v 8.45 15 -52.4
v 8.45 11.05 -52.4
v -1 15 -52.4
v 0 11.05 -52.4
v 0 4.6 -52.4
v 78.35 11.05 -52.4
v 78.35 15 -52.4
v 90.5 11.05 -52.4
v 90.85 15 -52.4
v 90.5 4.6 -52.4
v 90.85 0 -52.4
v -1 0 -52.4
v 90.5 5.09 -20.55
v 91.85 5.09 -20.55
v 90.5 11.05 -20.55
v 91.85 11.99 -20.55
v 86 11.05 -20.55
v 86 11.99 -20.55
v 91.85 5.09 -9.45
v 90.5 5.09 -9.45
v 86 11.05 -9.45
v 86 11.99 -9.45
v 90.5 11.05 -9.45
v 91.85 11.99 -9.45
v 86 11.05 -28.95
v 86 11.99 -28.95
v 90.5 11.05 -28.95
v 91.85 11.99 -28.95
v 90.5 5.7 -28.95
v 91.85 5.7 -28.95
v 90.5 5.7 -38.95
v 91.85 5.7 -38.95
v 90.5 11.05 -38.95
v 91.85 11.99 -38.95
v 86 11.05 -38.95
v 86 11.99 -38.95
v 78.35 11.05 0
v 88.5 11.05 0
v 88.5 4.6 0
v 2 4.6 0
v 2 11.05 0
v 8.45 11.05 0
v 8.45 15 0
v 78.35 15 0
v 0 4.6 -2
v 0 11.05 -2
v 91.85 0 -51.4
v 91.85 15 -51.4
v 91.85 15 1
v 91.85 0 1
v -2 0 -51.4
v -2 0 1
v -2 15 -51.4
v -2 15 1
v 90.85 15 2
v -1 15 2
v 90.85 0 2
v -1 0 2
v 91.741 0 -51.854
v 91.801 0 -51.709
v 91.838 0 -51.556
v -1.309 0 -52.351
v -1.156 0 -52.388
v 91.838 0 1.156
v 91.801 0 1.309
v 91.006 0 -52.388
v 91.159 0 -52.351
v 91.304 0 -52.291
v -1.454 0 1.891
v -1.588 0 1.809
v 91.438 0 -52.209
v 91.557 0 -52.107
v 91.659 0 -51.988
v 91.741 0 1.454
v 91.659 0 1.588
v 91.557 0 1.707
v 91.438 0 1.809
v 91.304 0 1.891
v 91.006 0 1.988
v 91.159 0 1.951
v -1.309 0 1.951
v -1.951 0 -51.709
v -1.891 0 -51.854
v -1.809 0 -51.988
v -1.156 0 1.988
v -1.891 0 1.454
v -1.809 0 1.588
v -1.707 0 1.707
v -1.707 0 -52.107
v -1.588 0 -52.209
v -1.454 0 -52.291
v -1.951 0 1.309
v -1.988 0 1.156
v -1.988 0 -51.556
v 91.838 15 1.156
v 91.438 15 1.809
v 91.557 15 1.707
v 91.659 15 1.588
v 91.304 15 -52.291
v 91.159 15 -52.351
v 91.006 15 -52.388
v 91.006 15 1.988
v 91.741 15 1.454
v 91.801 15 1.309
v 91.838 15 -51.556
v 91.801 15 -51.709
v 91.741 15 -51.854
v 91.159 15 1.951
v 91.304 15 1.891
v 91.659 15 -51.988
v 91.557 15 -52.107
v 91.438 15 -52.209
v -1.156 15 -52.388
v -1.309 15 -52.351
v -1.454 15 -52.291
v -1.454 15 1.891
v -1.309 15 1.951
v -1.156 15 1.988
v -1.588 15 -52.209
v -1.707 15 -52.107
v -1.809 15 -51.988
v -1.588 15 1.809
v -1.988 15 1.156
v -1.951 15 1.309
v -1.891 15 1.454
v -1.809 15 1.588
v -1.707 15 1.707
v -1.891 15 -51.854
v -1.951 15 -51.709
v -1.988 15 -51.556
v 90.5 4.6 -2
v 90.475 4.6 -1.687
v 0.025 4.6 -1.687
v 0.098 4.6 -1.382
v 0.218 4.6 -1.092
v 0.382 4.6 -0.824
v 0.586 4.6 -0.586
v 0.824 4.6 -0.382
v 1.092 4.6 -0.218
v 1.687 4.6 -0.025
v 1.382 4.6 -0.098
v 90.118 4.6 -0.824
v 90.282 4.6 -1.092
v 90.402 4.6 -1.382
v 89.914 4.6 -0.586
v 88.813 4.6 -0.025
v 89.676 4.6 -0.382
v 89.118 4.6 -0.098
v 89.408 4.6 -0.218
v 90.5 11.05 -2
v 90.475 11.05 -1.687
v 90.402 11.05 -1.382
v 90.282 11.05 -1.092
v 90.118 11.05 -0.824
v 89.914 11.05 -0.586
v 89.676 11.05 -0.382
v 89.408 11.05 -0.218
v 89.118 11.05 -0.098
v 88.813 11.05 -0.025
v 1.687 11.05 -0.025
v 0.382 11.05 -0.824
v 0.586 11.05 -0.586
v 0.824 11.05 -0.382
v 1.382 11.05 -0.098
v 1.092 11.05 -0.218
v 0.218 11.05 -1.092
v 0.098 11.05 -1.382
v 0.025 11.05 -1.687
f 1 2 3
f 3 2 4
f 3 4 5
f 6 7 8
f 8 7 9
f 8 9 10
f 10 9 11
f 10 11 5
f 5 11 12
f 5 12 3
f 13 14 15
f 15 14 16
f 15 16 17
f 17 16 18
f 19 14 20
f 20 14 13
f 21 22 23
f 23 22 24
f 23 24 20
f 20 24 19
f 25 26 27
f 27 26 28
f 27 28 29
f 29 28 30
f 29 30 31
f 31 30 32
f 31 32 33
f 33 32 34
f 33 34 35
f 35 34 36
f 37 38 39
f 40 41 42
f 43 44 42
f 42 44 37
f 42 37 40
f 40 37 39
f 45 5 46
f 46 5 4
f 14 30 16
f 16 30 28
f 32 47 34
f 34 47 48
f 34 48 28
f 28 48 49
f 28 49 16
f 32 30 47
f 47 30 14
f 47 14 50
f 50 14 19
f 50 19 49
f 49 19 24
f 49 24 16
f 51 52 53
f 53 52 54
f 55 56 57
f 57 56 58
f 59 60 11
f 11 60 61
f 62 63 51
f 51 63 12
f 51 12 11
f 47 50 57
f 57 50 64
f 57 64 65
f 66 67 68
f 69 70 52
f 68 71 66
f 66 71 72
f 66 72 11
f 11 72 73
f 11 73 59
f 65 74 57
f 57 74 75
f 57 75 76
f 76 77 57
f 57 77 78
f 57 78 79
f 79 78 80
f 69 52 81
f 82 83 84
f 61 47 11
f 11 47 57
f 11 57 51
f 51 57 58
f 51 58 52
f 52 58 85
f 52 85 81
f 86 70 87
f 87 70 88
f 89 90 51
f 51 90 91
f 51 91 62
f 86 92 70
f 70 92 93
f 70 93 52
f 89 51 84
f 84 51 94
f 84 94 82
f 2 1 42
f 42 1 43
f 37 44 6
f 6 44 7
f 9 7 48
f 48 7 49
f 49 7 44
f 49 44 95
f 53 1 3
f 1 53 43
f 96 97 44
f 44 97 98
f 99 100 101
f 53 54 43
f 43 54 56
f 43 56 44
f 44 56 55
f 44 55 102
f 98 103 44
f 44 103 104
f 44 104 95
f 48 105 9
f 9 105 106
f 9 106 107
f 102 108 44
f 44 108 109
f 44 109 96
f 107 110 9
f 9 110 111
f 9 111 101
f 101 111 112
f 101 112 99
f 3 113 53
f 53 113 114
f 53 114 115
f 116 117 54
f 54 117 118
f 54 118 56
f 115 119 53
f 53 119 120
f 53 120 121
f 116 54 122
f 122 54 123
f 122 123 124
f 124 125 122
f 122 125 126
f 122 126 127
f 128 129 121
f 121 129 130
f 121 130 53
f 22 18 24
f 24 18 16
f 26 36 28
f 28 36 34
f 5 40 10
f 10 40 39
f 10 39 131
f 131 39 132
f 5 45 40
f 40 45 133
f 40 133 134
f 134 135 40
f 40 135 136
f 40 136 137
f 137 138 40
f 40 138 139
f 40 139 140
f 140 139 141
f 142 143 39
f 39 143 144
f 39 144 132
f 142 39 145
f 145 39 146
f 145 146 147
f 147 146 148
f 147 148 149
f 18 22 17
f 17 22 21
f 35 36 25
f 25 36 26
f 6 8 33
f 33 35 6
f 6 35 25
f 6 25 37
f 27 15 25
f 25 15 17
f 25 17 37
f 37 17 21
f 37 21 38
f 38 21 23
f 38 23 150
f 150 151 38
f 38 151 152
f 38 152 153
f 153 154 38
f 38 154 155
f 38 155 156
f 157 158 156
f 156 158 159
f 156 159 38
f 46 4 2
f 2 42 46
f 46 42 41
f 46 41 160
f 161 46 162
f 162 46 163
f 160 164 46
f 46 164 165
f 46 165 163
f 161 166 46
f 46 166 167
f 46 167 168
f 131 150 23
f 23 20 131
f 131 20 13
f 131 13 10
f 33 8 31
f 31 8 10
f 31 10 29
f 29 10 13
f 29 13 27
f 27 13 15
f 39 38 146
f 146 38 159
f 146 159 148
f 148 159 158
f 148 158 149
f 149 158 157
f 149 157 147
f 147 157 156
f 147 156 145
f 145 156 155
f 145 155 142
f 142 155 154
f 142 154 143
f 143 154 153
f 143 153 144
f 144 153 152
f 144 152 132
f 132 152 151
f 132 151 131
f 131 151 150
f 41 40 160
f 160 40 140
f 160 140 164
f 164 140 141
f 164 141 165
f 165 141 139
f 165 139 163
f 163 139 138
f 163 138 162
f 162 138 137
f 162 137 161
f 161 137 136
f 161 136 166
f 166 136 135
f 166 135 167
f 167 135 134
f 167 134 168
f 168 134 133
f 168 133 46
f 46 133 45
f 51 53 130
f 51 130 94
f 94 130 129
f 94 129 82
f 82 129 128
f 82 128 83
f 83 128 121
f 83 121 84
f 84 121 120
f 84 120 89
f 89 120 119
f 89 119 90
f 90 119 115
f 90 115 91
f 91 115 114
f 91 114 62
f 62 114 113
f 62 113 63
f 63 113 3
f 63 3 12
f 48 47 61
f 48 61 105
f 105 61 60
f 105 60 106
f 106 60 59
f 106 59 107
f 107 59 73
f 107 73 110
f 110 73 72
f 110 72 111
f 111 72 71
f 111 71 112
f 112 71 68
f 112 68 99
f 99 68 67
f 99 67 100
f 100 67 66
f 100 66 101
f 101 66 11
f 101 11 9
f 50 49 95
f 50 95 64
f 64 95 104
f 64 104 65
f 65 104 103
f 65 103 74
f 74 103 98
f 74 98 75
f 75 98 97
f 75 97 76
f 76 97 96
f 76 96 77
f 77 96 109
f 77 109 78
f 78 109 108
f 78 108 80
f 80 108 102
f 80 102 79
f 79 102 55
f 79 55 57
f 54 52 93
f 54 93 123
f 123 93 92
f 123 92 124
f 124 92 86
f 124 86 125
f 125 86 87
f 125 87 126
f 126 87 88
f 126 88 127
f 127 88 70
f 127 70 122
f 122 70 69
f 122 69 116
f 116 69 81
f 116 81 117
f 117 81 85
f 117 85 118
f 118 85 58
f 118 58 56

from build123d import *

# Parameters (mm, degrees)
SKETCH1_W           = 93.85
SKETCH1_H           = 54.4
SKETCH1_W_2         = 89.85
SKETCH1_H_2         = 50.4
SKETCH1_W_3         = 8.5
SKETCH1_W_4         = 72.85
BOSS_EXTRUDE1_DEPTH = 2
SKETCH2_W           = 93.85
SKETCH2_H           = 54.4
SKETCH2_W_2         = 86
SKETCH2_H_2         = 50
BOSS_EXTRUDE2_DEPTH = 10
SKETCH3_W           = 8.45
SKETCH3_H           = 50
SKETCH3_W_2         = 69.9
SKETCH3_H_2         = 2
SKETCH3_W_3         = 7.65
BOSS_EXTRUDE3_DEPTH = 3
SKETCH5_W           = 10
SKETCH5_H           = 6.29
SKETCH5_W_2         = 11.1
SKETCH5_H_2         = 6.9
CUT_EXTRUDE1_DEPTH  = 5.85
SKETCH6_W           = 86
SKETCH6_H           = 50
BOSS_EXTRUDE4_DEPTH = 2.6
SKETCH8_W           = 86
SKETCH8_H           = 7.4
CUT_EXTRUDE2_DEPTH  = 2.4
SKETCH9_W           = 7.65
SKETCH9_H           = 52.4
SKETCH9_W_2         = 8.45
BOSS_EXTRUDE5_DEPTH = 0.95
SKETCH13_W          = 52.4
SKETCH13_H          = 6.45
CUT_EXTRUDE4_DEPTH  = 3
SKETCH14_W          = 52.4
SKETCH14_H          = 6.45
CUT_EXTRUDE5_DEPTH  = 1.5
FILLET1_R           = 2
FILLET2_R           = 1


with BuildPart() as part:
    # Sketch1 → Boss-Extrude1 (new body)
    # profile 1 of 4: a face of its own
    with BuildSketch(Plane(origin=(0, 0, 0), x_dir=(1, 0, 0), z_dir=(0, 1, 0))):
        with Locations((44.925, 25.2)):
            Rectangle(SKETCH1_W, SKETCH1_H)
        with Locations((44.925, 25.2)):
            Rectangle(SKETCH1_W_2, SKETCH1_H_2, mode=Mode.SUBTRACT)
    # profile 2 of 4: a face of its own
    with BuildSketch(Plane(origin=(0, 0, 0), x_dir=(1, 0, 0), z_dir=(0, 1, 0))):
        with Locations((4.25, 25.2)):
            Rectangle(SKETCH1_W_3, SKETCH1_H_2)
    # profile 3 of 4: a face of its own
    with BuildSketch(Plane(origin=(0, 0, 0), x_dir=(1, 0, 0), z_dir=(0, 1, 0))):
        with Locations((44.925, 25.2)):
            Rectangle(SKETCH1_W_4, SKETCH1_H_2)
    # profile 4 of 4: a face of its own
    with BuildSketch(Plane(origin=(0, 0, 0), x_dir=(1, 0, 0), z_dir=(0, 1, 0))):
        with Locations((85.6, 25.2)):
            Rectangle(SKETCH1_W_3, SKETCH1_H_2)
    extrude(amount=BOSS_EXTRUDE1_DEPTH)

    # Sketch2 → Boss-Extrude2 (add)
    with BuildSketch(Plane(origin=(0, 2, 0), x_dir=(1, 0, 0), z_dir=(0, 1, 0))):
        with Locations((44.925, 25.2)):
            Rectangle(SKETCH2_W, SKETCH2_H)
        with Locations((43, 25)):
            Rectangle(SKETCH2_W_2, SKETCH2_H_2, mode=Mode.SUBTRACT)
    extrude(amount=BOSS_EXTRUDE2_DEPTH)

    # Sketch3 → Boss-Extrude3 (add)
    with BuildSketch(Plane(origin=(0, 12, 0), x_dir=(1, 0, 0), z_dir=(0, 1, 0))):
        with Locations((4.225, 25)):
            Rectangle(SKETCH3_W, SKETCH3_H)
        Polygon((8.45, 52.4), (-2, 52.4), (-2, -2), (8.45, -2), (8.45, 0), (0, 0), (0, 50), (8.45, 50), align=None)
        with Locations((43.4, -1)):
            Rectangle(SKETCH3_W_2, SKETCH3_H_2)
        with Locations((82.175, 25)):
            Rectangle(SKETCH3_W_3, SKETCH3_H)
        Polygon((91.85, 52.4), (78.35, 52.4), (78.35, 50), (86, 50), (86, 0), (78.35, 0), (78.35, -2), (91.85, -2), align=None)
    extrude(amount=BOSS_EXTRUDE3_DEPTH)

    # Sketch5 → Cut-Extrude1 (cut)
    with BuildSketch(Plane.ZY.offset(-86)):
        with Locations((-33.95, 8.845)):
            Rectangle(SKETCH5_W, SKETCH5_H)
        with Locations((-15, 8.54)):
            Rectangle(SKETCH5_W_2, SKETCH5_H_2)
    extrude(amount=-CUT_EXTRUDE1_DEPTH, mode=Mode.SUBTRACT)

    # Sketch6 → Boss-Extrude4 (add)
    with BuildSketch(Plane(origin=(0, 2, 0), x_dir=(1, 0, 0), z_dir=(0, 1, 0))):
        with Locations((43, 25)):
            Rectangle(SKETCH6_W, SKETCH6_H)
    extrude(amount=BOSS_EXTRUDE4_DEPTH)

    # Sketch8 → Cut-Extrude2 (cut)
    with BuildSketch(Plane.XY.offset(-50)):
        with Locations((43, 8.3)):
            Rectangle(SKETCH8_W, SKETCH8_H)
    extrude(amount=-CUT_EXTRUDE2_DEPTH, mode=Mode.SUBTRACT)

    # Sketch9 → Boss-Extrude5 (add)
    with BuildSketch(Plane.XZ.offset(-12)):
        with Locations((82.175, -26.2)):
            Rectangle(SKETCH9_W, SKETCH9_H)
        with Locations((4.225, -26.2)):
            Rectangle(SKETCH9_W_2, SKETCH9_H)
    extrude(amount=BOSS_EXTRUDE5_DEPTH)

    # Sketch13 → Cut-Extrude4 (cut)
    with BuildSketch(Plane.ZY.offset(-86)):
        with Locations((-26.2, 7.825)):
            Rectangle(SKETCH13_W, SKETCH13_H)
    extrude(amount=-CUT_EXTRUDE4_DEPTH, mode=Mode.SUBTRACT)

    # Sketch14 → Cut-Extrude5 (cut)
    with BuildSketch(Plane.ZY.offset(-89)):
        with Locations((-26.2, 7.825)):
            Rectangle(SKETCH14_W, SKETCH14_H)
    extrude(amount=-CUT_EXTRUDE5_DEPTH, mode=Mode.SUBTRACT)

    # Fillet1
    fillet1_edges = [part.edges().sort_by_distance(p)[0] for p in [
        (0, 7.825, 0),
        (90.5, 7.825, 0),
    ]]
    fillet(fillet1_edges, radius=FILLET1_R)

    # Fillet2
    fillet2_edges = [part.edges().sort_by_distance(p)[0] for p in [
        (91.85, 7.5, 2),
        (-2, 7.5, 2),
        (-2, 7.5, -52.4),
        (91.85, 7.5, -52.4),
    ]]
    fillet(fillet2_edges, radius=FILLET2_R)


solid = part.part
